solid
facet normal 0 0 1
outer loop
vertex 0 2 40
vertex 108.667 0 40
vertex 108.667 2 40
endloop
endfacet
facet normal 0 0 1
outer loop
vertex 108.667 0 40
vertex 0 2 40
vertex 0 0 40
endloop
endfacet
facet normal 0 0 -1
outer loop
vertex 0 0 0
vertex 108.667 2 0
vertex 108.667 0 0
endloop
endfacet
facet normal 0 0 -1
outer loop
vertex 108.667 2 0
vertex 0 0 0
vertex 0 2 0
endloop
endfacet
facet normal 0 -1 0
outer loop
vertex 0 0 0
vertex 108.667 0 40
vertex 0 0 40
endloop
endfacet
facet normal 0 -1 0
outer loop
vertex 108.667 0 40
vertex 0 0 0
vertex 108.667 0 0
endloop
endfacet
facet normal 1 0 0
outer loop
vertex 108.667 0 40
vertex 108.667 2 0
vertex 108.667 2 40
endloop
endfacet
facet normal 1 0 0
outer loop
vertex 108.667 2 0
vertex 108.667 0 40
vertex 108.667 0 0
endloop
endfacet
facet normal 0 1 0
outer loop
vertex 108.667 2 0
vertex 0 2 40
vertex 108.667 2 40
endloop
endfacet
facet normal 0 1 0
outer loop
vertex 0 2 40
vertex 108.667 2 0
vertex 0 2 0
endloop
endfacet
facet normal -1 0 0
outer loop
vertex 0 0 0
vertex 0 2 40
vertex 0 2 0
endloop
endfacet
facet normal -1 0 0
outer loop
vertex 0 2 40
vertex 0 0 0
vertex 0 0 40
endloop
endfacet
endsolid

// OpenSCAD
$fn=50;

breite_display = 72;
tiefe_display = 39.6;

//breite = 70;


terminal_durchmesser = 3.6;
// aussenumriss
//terminal_durchmesser = 11.7;
terminal_box_breite = 30;
abstand = terminal_box_breite/4.5;

breite = breite_display + terminal_box_breite + abstand;
tiefe = tiefe_display + 2*abstand;
hoehe = 40;


wanddicke = 2;
edge_radius = wanddicke;


cube([breite, edge_radius, hoehe]);
